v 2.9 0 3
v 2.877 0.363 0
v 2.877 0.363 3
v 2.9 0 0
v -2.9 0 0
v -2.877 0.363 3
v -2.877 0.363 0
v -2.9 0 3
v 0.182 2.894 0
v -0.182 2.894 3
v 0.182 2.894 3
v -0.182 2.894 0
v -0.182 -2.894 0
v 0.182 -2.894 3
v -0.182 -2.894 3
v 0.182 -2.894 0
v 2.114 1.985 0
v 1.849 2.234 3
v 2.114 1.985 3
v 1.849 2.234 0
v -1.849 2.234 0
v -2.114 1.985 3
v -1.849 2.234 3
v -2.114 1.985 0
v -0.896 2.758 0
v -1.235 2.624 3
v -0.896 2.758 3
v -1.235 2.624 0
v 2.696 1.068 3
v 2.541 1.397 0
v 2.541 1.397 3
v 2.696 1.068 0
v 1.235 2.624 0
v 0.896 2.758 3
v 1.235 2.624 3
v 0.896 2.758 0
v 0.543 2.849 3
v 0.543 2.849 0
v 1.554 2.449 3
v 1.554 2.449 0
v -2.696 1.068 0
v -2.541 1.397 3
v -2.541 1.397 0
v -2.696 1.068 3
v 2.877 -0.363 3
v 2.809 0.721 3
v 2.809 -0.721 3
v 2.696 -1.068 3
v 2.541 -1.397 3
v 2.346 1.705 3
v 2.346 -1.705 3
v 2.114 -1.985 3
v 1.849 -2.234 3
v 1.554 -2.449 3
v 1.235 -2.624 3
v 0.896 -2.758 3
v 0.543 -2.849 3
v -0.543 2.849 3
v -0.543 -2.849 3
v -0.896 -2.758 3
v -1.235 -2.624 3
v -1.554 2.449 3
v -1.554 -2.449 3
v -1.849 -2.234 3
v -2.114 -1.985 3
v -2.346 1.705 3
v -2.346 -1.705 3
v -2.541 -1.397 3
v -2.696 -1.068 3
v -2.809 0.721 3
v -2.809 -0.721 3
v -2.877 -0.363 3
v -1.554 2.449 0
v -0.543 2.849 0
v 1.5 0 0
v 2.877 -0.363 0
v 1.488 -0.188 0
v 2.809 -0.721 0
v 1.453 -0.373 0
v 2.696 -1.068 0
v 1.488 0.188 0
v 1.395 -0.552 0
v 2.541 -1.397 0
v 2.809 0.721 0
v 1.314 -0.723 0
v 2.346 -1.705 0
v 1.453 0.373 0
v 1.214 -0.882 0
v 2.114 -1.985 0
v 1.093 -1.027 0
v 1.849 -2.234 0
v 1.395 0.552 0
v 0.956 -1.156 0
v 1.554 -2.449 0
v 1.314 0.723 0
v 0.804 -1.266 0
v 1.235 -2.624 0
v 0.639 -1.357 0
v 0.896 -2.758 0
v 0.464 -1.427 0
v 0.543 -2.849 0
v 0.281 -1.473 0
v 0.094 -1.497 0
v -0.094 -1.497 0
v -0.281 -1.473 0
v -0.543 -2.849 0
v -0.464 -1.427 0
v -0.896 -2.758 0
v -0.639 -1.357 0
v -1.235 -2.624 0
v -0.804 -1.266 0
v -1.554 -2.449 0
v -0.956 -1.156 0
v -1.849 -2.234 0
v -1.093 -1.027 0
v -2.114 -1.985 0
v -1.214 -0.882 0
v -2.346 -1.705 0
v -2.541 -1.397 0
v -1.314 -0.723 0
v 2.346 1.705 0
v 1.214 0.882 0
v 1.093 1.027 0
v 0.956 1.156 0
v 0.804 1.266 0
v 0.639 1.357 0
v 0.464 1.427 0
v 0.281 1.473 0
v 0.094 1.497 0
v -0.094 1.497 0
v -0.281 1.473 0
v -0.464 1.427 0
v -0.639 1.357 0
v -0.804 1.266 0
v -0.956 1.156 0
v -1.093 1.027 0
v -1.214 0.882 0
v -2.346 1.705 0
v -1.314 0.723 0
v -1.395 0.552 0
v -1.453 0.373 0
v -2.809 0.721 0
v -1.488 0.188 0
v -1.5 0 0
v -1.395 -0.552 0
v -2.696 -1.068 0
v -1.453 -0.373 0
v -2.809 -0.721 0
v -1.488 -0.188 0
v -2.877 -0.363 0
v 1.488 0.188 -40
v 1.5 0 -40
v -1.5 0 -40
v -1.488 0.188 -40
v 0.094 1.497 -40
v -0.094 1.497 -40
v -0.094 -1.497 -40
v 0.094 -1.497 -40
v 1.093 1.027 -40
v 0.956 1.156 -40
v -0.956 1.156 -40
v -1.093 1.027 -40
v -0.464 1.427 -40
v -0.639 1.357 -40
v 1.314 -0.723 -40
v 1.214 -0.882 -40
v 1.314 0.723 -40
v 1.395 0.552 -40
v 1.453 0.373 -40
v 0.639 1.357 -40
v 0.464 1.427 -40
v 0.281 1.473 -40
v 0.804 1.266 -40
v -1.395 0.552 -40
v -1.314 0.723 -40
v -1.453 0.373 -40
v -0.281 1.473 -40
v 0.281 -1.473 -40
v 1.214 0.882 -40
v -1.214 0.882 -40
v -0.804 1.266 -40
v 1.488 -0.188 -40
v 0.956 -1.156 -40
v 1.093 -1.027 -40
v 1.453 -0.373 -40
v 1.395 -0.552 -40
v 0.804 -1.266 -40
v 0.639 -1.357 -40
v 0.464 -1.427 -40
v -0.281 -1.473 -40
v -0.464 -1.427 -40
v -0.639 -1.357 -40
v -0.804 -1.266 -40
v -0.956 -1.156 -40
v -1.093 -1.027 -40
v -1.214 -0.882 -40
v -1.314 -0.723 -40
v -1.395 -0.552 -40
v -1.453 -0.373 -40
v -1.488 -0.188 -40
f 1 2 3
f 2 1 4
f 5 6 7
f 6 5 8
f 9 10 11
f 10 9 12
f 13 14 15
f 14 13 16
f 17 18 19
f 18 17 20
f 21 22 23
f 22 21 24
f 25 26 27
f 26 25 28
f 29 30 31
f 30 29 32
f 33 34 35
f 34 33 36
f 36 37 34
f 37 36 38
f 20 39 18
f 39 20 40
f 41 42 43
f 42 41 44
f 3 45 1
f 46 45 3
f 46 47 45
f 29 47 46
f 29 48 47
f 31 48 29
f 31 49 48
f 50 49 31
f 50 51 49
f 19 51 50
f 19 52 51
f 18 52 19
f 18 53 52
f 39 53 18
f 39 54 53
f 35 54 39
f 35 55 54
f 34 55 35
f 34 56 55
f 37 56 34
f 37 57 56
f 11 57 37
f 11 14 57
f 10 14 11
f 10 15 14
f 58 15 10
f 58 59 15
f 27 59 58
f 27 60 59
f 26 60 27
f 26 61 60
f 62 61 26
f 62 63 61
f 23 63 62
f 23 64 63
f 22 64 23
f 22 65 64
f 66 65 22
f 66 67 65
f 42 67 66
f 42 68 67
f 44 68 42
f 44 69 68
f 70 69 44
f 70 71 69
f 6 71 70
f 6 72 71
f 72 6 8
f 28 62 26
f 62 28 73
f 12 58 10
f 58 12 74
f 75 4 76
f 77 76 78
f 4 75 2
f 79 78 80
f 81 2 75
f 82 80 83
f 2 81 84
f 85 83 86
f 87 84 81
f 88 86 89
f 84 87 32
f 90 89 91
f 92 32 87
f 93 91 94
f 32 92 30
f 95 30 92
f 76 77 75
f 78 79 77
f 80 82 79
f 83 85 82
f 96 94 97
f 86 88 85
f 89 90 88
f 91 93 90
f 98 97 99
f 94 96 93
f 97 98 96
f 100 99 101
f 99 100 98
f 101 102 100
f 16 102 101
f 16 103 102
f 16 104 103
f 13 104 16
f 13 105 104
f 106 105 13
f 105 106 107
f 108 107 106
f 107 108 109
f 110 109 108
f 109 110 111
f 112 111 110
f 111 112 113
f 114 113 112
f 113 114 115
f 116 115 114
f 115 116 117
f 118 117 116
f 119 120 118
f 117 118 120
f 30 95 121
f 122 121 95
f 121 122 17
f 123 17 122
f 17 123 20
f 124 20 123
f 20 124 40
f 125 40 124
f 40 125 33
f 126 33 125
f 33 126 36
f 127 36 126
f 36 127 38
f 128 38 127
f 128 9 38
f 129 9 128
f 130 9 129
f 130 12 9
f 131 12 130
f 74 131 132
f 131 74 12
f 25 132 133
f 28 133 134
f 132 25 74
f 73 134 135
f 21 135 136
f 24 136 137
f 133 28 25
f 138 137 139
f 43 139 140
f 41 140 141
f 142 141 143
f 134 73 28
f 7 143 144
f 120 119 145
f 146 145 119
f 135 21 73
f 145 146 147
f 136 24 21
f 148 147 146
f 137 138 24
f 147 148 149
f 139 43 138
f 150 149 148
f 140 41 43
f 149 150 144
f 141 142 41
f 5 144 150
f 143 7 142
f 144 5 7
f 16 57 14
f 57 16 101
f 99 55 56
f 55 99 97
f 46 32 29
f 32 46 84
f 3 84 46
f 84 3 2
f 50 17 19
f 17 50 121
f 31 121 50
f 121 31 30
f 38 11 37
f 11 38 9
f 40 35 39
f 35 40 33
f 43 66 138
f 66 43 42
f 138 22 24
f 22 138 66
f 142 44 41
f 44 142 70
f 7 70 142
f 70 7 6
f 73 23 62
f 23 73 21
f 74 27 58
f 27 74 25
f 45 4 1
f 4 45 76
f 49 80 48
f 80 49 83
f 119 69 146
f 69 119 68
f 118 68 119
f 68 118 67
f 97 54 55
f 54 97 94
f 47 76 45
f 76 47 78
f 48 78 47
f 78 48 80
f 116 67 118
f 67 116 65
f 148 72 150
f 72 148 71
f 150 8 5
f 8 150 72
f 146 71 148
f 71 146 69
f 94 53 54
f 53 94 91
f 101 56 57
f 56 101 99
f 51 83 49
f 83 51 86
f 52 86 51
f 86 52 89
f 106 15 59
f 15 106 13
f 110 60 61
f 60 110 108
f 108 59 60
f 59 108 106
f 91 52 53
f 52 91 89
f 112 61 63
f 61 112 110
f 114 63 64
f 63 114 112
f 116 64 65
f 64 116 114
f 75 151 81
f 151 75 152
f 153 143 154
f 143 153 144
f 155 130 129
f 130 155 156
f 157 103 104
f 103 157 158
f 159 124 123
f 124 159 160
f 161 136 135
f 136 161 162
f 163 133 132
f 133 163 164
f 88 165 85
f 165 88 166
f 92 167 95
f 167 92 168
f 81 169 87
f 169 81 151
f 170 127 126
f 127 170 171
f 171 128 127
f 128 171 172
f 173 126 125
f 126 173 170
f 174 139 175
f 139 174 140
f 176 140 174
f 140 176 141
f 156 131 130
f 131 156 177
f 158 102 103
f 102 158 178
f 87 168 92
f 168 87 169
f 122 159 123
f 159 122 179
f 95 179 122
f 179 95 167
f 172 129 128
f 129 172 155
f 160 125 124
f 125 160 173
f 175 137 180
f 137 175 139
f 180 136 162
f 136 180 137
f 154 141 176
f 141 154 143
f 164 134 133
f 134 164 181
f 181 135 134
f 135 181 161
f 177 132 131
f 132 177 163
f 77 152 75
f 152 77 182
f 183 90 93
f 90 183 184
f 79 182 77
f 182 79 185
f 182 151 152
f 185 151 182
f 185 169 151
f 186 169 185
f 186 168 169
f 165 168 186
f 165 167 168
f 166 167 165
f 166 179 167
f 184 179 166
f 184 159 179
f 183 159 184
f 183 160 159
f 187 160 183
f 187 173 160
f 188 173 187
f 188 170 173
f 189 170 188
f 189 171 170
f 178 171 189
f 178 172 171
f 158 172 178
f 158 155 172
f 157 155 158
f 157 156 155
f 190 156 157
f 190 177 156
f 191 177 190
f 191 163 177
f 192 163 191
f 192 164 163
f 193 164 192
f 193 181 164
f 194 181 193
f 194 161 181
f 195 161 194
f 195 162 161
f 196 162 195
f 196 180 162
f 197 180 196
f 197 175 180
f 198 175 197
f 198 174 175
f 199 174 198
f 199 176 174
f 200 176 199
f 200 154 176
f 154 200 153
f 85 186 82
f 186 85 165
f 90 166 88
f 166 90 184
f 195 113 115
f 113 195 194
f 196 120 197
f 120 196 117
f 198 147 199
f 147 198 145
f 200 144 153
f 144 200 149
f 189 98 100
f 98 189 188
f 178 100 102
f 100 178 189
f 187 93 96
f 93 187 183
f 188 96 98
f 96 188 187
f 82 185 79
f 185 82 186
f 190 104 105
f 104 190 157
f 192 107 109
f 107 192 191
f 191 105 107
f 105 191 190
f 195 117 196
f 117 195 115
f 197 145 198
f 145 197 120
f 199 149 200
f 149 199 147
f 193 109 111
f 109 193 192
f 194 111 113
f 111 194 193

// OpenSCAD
$fn = 50;


difference() {
	union() {
		translate(v = [0, 0, 0]) {
			rotate(a = [0, 0, 0]) {
				cylinder(h = 3, r = 2.9000000000);
			}
		}
		translate(v = [0, 0, -40]) {
			rotate(a = [0, 0, 0]) {
				cylinder(h = 40, r = 1.5000000000);
			}
		}
	}
	union();
}
